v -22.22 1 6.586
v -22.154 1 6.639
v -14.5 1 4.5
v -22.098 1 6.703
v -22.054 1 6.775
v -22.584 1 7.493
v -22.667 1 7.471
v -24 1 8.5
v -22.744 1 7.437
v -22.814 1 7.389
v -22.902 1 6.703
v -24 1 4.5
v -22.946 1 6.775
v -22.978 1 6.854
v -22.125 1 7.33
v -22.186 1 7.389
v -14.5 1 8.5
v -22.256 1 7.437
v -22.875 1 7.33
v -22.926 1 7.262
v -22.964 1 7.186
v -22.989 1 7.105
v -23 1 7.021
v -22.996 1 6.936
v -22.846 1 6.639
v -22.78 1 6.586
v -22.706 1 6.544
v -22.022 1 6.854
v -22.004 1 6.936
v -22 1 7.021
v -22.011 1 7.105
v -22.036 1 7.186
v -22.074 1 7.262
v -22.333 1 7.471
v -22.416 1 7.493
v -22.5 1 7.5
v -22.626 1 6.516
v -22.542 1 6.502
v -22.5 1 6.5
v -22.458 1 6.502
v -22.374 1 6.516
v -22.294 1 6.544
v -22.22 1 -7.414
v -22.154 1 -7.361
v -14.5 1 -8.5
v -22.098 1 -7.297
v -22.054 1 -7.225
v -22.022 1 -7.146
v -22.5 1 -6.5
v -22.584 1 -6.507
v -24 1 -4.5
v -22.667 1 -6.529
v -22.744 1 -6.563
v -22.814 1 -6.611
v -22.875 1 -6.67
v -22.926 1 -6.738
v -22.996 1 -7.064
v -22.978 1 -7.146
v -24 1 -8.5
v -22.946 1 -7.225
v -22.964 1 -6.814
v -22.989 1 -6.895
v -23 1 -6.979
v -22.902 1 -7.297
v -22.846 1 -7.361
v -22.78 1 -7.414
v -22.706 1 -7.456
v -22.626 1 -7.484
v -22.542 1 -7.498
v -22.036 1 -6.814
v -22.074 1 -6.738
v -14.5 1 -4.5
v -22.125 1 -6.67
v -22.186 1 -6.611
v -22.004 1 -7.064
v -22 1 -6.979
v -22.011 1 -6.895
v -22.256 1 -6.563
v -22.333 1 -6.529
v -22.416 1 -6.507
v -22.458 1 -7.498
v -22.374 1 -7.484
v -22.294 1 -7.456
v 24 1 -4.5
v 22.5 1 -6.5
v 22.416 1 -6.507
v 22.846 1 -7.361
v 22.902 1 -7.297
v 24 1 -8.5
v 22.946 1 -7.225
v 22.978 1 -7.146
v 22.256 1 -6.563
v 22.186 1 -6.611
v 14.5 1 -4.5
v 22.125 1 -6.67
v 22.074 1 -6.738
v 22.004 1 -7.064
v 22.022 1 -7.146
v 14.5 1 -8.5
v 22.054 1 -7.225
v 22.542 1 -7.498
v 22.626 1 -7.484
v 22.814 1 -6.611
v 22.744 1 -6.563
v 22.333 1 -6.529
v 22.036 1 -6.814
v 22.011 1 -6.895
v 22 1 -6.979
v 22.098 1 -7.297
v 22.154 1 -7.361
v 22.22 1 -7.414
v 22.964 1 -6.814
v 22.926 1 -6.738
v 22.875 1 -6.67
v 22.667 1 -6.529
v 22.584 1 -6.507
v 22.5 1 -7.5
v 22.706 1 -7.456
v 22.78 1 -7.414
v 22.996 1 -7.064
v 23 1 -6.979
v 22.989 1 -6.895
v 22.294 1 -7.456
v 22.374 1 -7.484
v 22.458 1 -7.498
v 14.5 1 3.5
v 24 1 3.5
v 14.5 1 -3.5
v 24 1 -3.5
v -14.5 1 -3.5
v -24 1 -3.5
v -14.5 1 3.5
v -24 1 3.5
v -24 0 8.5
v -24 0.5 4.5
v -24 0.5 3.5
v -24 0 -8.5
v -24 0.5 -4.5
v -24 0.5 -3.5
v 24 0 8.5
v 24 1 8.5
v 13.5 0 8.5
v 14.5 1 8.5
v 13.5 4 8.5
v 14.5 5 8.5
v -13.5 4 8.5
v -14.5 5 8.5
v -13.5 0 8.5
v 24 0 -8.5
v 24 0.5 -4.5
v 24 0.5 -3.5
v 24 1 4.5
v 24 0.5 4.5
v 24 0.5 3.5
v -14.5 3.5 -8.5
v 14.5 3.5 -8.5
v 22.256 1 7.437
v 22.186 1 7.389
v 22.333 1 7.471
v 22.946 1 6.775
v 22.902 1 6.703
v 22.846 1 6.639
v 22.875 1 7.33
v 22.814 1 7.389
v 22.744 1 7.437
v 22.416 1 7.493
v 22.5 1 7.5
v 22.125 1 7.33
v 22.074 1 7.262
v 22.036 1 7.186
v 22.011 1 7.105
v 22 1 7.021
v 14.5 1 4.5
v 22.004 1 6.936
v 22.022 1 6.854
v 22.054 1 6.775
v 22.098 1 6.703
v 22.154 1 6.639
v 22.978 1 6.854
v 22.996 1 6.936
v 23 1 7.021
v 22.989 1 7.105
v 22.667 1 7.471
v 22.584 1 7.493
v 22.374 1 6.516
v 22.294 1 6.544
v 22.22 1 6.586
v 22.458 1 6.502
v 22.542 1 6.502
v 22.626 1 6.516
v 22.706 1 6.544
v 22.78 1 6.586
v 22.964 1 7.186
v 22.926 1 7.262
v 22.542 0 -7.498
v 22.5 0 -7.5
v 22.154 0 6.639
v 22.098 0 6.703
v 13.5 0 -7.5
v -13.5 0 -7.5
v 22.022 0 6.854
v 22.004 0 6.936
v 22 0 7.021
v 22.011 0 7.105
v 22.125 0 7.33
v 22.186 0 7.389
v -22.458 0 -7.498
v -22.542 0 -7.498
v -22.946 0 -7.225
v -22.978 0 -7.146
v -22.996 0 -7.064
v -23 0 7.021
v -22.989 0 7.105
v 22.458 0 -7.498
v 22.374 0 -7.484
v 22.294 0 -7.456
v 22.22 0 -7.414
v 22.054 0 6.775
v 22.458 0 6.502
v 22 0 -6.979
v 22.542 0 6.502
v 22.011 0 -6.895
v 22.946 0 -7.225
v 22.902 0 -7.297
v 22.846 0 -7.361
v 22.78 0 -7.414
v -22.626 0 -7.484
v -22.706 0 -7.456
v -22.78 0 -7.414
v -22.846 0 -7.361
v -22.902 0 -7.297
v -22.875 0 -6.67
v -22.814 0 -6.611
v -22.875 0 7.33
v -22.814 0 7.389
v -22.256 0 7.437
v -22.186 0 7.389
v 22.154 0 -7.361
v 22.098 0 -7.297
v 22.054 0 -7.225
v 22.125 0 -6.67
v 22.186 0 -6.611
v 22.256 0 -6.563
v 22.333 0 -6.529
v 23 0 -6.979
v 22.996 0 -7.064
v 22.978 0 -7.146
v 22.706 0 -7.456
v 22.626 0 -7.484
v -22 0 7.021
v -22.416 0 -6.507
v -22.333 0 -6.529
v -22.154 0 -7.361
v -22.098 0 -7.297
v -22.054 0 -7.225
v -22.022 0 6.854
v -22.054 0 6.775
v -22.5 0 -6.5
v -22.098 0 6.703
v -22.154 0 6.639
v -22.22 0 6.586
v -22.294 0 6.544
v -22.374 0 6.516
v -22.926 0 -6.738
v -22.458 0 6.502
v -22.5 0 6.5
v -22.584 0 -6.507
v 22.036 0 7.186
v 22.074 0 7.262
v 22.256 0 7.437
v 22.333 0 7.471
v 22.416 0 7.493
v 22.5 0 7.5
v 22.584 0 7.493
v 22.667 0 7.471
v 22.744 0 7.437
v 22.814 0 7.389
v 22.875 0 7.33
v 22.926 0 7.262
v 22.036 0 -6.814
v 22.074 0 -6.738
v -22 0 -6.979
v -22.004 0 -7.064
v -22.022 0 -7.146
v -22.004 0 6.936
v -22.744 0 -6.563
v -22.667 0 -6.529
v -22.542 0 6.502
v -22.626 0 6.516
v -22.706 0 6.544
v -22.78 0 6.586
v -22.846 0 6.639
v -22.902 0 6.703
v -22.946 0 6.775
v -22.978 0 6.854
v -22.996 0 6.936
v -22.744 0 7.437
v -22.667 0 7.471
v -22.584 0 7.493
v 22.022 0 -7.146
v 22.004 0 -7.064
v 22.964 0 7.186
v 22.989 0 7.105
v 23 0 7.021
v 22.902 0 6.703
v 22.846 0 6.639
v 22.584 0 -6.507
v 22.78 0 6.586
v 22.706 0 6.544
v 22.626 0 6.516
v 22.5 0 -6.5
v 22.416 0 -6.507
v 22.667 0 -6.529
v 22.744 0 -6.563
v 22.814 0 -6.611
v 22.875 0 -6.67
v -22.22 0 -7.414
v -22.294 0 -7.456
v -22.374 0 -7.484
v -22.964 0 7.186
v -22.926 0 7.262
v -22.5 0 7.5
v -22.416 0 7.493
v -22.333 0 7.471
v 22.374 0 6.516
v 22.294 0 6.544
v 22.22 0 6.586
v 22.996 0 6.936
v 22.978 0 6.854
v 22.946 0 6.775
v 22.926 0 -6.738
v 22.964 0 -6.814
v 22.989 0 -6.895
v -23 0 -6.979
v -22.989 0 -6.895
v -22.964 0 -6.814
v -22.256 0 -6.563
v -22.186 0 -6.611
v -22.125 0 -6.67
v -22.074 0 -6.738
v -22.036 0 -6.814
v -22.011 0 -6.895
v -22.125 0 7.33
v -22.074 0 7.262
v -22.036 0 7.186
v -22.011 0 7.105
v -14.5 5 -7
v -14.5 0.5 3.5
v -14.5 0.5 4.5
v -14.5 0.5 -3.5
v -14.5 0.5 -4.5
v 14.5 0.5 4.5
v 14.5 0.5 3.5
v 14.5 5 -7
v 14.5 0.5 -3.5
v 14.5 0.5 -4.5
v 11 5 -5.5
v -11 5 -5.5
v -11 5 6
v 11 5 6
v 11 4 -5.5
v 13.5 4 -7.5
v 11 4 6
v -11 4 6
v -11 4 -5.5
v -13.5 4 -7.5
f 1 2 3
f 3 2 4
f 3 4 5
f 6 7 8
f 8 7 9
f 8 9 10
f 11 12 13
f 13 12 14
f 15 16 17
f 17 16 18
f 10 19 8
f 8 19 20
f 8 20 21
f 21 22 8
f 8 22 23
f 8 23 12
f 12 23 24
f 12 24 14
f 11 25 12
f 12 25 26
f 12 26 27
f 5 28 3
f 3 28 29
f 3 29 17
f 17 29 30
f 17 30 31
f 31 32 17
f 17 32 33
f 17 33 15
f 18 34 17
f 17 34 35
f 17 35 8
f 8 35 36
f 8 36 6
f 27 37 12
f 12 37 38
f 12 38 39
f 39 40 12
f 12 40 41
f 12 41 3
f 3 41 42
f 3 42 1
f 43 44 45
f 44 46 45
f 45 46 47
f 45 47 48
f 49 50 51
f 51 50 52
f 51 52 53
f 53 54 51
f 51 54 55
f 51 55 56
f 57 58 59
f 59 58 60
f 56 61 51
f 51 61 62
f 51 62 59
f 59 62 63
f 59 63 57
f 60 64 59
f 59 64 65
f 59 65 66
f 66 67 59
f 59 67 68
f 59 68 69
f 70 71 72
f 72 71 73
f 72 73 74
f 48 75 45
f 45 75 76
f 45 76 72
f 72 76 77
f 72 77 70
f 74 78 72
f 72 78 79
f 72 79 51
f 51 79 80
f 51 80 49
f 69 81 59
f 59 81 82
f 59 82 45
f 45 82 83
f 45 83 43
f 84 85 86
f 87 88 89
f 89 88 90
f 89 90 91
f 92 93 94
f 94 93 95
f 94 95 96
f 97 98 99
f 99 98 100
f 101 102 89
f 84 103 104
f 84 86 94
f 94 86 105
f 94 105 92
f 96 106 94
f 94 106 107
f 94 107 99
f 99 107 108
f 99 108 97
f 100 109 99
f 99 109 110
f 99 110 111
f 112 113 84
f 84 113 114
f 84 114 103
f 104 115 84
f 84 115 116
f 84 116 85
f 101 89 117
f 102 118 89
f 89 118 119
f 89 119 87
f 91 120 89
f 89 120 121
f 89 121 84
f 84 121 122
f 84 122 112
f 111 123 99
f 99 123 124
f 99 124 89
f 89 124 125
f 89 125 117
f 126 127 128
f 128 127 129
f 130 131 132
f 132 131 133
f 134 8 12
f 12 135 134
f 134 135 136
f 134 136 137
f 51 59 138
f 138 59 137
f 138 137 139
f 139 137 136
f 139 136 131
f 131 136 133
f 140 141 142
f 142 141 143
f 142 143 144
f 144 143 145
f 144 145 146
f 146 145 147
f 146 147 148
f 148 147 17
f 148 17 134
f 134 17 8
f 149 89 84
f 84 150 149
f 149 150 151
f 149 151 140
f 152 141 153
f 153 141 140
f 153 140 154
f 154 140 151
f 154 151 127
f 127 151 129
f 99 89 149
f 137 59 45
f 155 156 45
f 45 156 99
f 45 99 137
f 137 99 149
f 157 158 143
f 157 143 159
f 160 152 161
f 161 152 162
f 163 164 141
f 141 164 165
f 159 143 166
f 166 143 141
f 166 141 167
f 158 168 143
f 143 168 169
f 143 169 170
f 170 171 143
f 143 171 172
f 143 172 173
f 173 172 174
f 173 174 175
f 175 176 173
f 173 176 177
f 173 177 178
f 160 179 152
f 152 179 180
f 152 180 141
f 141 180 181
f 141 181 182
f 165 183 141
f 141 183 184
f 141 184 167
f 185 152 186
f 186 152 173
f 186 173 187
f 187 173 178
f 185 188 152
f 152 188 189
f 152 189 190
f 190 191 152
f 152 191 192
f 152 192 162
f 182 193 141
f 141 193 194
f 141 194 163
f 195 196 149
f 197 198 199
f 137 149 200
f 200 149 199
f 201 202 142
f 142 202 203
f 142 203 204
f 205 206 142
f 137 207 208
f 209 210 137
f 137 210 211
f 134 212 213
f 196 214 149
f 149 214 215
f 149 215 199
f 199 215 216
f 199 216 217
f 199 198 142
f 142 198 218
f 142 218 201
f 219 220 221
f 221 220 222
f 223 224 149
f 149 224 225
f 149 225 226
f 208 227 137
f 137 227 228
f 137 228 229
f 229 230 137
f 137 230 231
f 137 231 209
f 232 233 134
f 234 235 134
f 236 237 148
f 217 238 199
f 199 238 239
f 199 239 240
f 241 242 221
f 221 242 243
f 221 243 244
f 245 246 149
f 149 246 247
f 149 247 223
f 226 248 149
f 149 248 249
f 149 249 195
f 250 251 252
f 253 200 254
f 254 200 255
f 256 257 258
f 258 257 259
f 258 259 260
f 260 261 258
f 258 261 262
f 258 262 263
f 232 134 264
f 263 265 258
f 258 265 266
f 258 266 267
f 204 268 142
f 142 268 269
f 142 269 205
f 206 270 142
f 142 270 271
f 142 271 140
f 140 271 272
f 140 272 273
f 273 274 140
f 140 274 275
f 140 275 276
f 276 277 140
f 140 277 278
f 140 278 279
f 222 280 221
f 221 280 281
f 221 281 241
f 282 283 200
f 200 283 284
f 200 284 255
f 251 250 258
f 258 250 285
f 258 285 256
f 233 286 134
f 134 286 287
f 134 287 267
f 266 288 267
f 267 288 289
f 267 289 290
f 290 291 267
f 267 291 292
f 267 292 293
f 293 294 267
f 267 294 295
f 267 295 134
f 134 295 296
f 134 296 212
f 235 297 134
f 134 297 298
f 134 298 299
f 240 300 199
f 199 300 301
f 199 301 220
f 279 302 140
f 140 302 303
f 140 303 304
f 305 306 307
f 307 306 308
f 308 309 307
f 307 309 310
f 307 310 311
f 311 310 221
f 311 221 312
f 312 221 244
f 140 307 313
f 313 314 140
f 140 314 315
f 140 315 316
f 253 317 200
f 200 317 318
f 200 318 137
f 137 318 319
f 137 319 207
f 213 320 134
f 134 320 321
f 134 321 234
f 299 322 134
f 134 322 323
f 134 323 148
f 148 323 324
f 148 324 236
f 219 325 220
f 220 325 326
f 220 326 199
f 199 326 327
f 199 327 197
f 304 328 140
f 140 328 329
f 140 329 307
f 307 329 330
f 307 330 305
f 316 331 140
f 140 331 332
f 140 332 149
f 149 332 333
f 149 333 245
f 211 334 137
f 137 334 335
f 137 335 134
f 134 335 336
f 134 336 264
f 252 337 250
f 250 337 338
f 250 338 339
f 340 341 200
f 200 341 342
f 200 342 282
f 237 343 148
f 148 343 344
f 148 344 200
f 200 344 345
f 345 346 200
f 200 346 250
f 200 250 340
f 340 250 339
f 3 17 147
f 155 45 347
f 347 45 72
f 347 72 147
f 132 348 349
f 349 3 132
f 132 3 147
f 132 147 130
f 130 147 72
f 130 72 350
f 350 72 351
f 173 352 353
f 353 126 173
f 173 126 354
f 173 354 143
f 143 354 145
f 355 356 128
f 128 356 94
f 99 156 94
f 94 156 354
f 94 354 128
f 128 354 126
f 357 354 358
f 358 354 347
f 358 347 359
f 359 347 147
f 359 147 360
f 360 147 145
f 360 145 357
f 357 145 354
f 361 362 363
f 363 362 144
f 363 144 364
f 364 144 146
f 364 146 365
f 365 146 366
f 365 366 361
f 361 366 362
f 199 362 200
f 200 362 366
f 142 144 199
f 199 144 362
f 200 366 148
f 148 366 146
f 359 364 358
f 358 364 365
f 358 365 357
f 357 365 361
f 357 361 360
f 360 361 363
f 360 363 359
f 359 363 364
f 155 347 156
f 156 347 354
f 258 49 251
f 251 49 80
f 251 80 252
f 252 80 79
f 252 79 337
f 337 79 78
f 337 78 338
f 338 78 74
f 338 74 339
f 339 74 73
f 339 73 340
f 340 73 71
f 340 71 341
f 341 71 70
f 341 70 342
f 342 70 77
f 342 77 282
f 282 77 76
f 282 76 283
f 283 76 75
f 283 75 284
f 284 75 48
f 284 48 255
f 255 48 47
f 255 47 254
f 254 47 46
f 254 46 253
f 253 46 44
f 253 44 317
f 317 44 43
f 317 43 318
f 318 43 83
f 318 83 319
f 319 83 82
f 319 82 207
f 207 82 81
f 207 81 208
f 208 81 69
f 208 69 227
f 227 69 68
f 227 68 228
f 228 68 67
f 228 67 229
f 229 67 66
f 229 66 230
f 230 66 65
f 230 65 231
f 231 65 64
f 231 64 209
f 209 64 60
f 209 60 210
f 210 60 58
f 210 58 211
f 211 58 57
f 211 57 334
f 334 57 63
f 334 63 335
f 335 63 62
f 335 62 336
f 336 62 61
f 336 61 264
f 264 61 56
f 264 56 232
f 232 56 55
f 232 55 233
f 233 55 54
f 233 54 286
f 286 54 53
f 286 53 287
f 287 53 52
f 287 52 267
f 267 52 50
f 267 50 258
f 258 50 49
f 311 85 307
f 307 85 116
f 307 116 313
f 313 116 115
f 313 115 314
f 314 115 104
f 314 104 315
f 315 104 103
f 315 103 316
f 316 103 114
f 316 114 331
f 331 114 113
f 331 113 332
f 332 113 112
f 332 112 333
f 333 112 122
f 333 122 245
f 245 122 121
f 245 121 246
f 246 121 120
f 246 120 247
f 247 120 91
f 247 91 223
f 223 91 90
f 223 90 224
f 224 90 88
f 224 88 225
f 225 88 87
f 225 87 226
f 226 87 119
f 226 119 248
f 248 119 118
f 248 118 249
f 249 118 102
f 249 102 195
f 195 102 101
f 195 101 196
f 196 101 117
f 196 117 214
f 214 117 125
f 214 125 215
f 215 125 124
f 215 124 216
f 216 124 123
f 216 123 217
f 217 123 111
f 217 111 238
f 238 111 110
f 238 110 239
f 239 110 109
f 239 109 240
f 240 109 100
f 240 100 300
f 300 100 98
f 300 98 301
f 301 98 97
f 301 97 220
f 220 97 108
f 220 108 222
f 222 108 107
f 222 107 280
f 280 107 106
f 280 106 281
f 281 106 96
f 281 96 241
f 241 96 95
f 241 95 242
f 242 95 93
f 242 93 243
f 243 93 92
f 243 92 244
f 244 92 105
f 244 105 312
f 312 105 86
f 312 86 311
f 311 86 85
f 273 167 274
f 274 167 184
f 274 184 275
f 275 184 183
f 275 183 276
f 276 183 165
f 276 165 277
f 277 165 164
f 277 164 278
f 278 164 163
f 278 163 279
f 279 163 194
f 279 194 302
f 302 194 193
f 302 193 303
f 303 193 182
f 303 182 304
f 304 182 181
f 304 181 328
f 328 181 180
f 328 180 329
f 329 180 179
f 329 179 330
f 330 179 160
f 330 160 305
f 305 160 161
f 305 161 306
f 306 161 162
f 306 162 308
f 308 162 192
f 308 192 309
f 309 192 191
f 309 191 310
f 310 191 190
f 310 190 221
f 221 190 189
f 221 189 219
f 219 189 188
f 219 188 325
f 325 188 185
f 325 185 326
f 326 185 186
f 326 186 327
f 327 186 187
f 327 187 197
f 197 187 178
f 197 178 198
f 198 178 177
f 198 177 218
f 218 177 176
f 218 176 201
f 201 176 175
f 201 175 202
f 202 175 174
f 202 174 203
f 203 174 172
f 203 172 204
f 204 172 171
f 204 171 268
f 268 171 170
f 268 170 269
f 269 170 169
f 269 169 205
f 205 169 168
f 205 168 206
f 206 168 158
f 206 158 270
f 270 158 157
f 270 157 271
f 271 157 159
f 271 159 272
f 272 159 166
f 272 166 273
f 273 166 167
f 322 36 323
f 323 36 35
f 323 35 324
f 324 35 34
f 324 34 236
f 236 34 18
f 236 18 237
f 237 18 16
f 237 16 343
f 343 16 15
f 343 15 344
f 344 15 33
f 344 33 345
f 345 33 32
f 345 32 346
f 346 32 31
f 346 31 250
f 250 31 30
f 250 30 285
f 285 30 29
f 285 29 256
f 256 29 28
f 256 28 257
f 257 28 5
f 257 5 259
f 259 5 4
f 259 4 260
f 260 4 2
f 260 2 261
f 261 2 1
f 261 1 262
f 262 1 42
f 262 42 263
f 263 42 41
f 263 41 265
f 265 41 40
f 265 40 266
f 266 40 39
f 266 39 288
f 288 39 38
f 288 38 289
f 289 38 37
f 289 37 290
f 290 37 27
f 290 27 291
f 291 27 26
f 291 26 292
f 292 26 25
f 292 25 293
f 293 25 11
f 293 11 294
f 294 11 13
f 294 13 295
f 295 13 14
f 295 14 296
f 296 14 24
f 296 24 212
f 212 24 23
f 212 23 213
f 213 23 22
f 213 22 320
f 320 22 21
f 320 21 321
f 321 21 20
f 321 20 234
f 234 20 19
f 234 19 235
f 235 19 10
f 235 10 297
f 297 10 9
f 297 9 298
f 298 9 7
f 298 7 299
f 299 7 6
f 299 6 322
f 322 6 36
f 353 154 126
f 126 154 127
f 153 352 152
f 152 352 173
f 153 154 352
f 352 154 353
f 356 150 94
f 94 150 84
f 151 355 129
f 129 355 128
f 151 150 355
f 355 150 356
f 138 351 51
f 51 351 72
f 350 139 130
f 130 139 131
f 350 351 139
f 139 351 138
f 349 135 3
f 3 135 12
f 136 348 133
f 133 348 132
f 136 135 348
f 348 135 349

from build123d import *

# Parameters (mm, degrees)
SKETCH_1_W          = 48
SKETCH_1_H          = 17
EXTRUDE_1_DEPTH     = 1
SKETCH_2_W          = 29
SKETCH_2_H          = 17
EXTRUDE_2_DEPTH     = 4
SKETCH_3_W          = 27
SKETCH_3_H          = 16
CUT_EXTRUDE_1_DEPTH = 4
SKETCH_4_W          = 22
SKETCH_4_H          = 11.5
CUT_EXTRUDE_2_DEPTH = 6
CHAMFER_1_SIZE      = 1.5
SKETCH_5_R          = 0.5
CUT_EXTRUDE_3_DEPTH = 2
SKETCH_6_W          = 9.5
SKETCH_6_H          = 1
CUT_EXTRUDE_4_DEPTH = 0.5


with BuildPart() as part:
    # 草图1 → 凸台-拉伸1 (new body)
    with BuildSketch(Plane(origin=(0, 0, 0), x_dir=(1, 0, 0), z_dir=(0, 1, 0))):
        Rectangle(SKETCH_1_W, SKETCH_1_H)
    extrude(amount=EXTRUDE_1_DEPTH)

    # 草图2 → 凸台-拉伸2 (add)
    with BuildSketch(Plane(origin=(0, 1, 0), x_dir=(1, 0, 0), z_dir=(0, 1, 0))):
        Rectangle(SKETCH_2_W, SKETCH_2_H)
    extrude(amount=EXTRUDE_2_DEPTH)

    # 草图3 → 切除-拉伸1 (cut)
    with BuildSketch(Plane.XZ):
        with Locations((0, 0.5)):
            Rectangle(SKETCH_3_W, SKETCH_3_H)
    extrude(amount=-CUT_EXTRUDE_1_DEPTH, mode=Mode.SUBTRACT)

    # 草图4 → 切除-拉伸2 (cut, through all)
    with BuildSketch(Plane(origin=(0, 5, 0), x_dir=(1, 0, 0), z_dir=(0, 1, 0))):
        with Locations((0, -0.25)):
            Rectangle(SKETCH_4_W, SKETCH_4_H)
    extrude(amount=-CUT_EXTRUDE_2_DEPTH, mode=Mode.SUBTRACT)

    # 倒角1
    chamfer_1_edges = [part.edges().sort_by_distance(p)[0] for p in [
        (0, 5, -8.5),
    ]]
    chamfer(chamfer_1_edges, length=CHAMFER_1_SIZE)

    # 草图5 → 切除-拉伸3 (cut, through all)
    with BuildSketch(Plane(origin=(0, 1, 0), x_dir=(1, 0, 0), z_dir=(0, 1, 0))):
        with Locations((-22.5, 7)):
            Circle(SKETCH_5_R)
        with Locations((22.5, 7)):
            Circle(SKETCH_5_R)
        with Locations((22.5, -7)):
            Circle(SKETCH_5_R)
        with Locations((-22.5, -7)):
            Circle(SKETCH_5_R)
    extrude(amount=-CUT_EXTRUDE_3_DEPTH, mode=Mode.SUBTRACT)

    # 草图6 → 切除-拉伸4 (cut)
    with BuildSketch(Plane(origin=(0, 1, 0), x_dir=(1, 0, 0), z_dir=(0, 1, 0))):
        with Locations((-19.25, 4)):
            Rectangle(SKETCH_6_W, SKETCH_6_H)
        with Locations((-19.25, -4)):
            Rectangle(SKETCH_6_W, SKETCH_6_H)
        with Locations((19.25, -4)):
            Rectangle(SKETCH_6_W, SKETCH_6_H)
        with Locations((19.25, 4)):
            Rectangle(SKETCH_6_W, SKETCH_6_H)
    extrude(amount=-CUT_EXTRUDE_4_DEPTH, mode=Mode.SUBTRACT)


solid = part.part
